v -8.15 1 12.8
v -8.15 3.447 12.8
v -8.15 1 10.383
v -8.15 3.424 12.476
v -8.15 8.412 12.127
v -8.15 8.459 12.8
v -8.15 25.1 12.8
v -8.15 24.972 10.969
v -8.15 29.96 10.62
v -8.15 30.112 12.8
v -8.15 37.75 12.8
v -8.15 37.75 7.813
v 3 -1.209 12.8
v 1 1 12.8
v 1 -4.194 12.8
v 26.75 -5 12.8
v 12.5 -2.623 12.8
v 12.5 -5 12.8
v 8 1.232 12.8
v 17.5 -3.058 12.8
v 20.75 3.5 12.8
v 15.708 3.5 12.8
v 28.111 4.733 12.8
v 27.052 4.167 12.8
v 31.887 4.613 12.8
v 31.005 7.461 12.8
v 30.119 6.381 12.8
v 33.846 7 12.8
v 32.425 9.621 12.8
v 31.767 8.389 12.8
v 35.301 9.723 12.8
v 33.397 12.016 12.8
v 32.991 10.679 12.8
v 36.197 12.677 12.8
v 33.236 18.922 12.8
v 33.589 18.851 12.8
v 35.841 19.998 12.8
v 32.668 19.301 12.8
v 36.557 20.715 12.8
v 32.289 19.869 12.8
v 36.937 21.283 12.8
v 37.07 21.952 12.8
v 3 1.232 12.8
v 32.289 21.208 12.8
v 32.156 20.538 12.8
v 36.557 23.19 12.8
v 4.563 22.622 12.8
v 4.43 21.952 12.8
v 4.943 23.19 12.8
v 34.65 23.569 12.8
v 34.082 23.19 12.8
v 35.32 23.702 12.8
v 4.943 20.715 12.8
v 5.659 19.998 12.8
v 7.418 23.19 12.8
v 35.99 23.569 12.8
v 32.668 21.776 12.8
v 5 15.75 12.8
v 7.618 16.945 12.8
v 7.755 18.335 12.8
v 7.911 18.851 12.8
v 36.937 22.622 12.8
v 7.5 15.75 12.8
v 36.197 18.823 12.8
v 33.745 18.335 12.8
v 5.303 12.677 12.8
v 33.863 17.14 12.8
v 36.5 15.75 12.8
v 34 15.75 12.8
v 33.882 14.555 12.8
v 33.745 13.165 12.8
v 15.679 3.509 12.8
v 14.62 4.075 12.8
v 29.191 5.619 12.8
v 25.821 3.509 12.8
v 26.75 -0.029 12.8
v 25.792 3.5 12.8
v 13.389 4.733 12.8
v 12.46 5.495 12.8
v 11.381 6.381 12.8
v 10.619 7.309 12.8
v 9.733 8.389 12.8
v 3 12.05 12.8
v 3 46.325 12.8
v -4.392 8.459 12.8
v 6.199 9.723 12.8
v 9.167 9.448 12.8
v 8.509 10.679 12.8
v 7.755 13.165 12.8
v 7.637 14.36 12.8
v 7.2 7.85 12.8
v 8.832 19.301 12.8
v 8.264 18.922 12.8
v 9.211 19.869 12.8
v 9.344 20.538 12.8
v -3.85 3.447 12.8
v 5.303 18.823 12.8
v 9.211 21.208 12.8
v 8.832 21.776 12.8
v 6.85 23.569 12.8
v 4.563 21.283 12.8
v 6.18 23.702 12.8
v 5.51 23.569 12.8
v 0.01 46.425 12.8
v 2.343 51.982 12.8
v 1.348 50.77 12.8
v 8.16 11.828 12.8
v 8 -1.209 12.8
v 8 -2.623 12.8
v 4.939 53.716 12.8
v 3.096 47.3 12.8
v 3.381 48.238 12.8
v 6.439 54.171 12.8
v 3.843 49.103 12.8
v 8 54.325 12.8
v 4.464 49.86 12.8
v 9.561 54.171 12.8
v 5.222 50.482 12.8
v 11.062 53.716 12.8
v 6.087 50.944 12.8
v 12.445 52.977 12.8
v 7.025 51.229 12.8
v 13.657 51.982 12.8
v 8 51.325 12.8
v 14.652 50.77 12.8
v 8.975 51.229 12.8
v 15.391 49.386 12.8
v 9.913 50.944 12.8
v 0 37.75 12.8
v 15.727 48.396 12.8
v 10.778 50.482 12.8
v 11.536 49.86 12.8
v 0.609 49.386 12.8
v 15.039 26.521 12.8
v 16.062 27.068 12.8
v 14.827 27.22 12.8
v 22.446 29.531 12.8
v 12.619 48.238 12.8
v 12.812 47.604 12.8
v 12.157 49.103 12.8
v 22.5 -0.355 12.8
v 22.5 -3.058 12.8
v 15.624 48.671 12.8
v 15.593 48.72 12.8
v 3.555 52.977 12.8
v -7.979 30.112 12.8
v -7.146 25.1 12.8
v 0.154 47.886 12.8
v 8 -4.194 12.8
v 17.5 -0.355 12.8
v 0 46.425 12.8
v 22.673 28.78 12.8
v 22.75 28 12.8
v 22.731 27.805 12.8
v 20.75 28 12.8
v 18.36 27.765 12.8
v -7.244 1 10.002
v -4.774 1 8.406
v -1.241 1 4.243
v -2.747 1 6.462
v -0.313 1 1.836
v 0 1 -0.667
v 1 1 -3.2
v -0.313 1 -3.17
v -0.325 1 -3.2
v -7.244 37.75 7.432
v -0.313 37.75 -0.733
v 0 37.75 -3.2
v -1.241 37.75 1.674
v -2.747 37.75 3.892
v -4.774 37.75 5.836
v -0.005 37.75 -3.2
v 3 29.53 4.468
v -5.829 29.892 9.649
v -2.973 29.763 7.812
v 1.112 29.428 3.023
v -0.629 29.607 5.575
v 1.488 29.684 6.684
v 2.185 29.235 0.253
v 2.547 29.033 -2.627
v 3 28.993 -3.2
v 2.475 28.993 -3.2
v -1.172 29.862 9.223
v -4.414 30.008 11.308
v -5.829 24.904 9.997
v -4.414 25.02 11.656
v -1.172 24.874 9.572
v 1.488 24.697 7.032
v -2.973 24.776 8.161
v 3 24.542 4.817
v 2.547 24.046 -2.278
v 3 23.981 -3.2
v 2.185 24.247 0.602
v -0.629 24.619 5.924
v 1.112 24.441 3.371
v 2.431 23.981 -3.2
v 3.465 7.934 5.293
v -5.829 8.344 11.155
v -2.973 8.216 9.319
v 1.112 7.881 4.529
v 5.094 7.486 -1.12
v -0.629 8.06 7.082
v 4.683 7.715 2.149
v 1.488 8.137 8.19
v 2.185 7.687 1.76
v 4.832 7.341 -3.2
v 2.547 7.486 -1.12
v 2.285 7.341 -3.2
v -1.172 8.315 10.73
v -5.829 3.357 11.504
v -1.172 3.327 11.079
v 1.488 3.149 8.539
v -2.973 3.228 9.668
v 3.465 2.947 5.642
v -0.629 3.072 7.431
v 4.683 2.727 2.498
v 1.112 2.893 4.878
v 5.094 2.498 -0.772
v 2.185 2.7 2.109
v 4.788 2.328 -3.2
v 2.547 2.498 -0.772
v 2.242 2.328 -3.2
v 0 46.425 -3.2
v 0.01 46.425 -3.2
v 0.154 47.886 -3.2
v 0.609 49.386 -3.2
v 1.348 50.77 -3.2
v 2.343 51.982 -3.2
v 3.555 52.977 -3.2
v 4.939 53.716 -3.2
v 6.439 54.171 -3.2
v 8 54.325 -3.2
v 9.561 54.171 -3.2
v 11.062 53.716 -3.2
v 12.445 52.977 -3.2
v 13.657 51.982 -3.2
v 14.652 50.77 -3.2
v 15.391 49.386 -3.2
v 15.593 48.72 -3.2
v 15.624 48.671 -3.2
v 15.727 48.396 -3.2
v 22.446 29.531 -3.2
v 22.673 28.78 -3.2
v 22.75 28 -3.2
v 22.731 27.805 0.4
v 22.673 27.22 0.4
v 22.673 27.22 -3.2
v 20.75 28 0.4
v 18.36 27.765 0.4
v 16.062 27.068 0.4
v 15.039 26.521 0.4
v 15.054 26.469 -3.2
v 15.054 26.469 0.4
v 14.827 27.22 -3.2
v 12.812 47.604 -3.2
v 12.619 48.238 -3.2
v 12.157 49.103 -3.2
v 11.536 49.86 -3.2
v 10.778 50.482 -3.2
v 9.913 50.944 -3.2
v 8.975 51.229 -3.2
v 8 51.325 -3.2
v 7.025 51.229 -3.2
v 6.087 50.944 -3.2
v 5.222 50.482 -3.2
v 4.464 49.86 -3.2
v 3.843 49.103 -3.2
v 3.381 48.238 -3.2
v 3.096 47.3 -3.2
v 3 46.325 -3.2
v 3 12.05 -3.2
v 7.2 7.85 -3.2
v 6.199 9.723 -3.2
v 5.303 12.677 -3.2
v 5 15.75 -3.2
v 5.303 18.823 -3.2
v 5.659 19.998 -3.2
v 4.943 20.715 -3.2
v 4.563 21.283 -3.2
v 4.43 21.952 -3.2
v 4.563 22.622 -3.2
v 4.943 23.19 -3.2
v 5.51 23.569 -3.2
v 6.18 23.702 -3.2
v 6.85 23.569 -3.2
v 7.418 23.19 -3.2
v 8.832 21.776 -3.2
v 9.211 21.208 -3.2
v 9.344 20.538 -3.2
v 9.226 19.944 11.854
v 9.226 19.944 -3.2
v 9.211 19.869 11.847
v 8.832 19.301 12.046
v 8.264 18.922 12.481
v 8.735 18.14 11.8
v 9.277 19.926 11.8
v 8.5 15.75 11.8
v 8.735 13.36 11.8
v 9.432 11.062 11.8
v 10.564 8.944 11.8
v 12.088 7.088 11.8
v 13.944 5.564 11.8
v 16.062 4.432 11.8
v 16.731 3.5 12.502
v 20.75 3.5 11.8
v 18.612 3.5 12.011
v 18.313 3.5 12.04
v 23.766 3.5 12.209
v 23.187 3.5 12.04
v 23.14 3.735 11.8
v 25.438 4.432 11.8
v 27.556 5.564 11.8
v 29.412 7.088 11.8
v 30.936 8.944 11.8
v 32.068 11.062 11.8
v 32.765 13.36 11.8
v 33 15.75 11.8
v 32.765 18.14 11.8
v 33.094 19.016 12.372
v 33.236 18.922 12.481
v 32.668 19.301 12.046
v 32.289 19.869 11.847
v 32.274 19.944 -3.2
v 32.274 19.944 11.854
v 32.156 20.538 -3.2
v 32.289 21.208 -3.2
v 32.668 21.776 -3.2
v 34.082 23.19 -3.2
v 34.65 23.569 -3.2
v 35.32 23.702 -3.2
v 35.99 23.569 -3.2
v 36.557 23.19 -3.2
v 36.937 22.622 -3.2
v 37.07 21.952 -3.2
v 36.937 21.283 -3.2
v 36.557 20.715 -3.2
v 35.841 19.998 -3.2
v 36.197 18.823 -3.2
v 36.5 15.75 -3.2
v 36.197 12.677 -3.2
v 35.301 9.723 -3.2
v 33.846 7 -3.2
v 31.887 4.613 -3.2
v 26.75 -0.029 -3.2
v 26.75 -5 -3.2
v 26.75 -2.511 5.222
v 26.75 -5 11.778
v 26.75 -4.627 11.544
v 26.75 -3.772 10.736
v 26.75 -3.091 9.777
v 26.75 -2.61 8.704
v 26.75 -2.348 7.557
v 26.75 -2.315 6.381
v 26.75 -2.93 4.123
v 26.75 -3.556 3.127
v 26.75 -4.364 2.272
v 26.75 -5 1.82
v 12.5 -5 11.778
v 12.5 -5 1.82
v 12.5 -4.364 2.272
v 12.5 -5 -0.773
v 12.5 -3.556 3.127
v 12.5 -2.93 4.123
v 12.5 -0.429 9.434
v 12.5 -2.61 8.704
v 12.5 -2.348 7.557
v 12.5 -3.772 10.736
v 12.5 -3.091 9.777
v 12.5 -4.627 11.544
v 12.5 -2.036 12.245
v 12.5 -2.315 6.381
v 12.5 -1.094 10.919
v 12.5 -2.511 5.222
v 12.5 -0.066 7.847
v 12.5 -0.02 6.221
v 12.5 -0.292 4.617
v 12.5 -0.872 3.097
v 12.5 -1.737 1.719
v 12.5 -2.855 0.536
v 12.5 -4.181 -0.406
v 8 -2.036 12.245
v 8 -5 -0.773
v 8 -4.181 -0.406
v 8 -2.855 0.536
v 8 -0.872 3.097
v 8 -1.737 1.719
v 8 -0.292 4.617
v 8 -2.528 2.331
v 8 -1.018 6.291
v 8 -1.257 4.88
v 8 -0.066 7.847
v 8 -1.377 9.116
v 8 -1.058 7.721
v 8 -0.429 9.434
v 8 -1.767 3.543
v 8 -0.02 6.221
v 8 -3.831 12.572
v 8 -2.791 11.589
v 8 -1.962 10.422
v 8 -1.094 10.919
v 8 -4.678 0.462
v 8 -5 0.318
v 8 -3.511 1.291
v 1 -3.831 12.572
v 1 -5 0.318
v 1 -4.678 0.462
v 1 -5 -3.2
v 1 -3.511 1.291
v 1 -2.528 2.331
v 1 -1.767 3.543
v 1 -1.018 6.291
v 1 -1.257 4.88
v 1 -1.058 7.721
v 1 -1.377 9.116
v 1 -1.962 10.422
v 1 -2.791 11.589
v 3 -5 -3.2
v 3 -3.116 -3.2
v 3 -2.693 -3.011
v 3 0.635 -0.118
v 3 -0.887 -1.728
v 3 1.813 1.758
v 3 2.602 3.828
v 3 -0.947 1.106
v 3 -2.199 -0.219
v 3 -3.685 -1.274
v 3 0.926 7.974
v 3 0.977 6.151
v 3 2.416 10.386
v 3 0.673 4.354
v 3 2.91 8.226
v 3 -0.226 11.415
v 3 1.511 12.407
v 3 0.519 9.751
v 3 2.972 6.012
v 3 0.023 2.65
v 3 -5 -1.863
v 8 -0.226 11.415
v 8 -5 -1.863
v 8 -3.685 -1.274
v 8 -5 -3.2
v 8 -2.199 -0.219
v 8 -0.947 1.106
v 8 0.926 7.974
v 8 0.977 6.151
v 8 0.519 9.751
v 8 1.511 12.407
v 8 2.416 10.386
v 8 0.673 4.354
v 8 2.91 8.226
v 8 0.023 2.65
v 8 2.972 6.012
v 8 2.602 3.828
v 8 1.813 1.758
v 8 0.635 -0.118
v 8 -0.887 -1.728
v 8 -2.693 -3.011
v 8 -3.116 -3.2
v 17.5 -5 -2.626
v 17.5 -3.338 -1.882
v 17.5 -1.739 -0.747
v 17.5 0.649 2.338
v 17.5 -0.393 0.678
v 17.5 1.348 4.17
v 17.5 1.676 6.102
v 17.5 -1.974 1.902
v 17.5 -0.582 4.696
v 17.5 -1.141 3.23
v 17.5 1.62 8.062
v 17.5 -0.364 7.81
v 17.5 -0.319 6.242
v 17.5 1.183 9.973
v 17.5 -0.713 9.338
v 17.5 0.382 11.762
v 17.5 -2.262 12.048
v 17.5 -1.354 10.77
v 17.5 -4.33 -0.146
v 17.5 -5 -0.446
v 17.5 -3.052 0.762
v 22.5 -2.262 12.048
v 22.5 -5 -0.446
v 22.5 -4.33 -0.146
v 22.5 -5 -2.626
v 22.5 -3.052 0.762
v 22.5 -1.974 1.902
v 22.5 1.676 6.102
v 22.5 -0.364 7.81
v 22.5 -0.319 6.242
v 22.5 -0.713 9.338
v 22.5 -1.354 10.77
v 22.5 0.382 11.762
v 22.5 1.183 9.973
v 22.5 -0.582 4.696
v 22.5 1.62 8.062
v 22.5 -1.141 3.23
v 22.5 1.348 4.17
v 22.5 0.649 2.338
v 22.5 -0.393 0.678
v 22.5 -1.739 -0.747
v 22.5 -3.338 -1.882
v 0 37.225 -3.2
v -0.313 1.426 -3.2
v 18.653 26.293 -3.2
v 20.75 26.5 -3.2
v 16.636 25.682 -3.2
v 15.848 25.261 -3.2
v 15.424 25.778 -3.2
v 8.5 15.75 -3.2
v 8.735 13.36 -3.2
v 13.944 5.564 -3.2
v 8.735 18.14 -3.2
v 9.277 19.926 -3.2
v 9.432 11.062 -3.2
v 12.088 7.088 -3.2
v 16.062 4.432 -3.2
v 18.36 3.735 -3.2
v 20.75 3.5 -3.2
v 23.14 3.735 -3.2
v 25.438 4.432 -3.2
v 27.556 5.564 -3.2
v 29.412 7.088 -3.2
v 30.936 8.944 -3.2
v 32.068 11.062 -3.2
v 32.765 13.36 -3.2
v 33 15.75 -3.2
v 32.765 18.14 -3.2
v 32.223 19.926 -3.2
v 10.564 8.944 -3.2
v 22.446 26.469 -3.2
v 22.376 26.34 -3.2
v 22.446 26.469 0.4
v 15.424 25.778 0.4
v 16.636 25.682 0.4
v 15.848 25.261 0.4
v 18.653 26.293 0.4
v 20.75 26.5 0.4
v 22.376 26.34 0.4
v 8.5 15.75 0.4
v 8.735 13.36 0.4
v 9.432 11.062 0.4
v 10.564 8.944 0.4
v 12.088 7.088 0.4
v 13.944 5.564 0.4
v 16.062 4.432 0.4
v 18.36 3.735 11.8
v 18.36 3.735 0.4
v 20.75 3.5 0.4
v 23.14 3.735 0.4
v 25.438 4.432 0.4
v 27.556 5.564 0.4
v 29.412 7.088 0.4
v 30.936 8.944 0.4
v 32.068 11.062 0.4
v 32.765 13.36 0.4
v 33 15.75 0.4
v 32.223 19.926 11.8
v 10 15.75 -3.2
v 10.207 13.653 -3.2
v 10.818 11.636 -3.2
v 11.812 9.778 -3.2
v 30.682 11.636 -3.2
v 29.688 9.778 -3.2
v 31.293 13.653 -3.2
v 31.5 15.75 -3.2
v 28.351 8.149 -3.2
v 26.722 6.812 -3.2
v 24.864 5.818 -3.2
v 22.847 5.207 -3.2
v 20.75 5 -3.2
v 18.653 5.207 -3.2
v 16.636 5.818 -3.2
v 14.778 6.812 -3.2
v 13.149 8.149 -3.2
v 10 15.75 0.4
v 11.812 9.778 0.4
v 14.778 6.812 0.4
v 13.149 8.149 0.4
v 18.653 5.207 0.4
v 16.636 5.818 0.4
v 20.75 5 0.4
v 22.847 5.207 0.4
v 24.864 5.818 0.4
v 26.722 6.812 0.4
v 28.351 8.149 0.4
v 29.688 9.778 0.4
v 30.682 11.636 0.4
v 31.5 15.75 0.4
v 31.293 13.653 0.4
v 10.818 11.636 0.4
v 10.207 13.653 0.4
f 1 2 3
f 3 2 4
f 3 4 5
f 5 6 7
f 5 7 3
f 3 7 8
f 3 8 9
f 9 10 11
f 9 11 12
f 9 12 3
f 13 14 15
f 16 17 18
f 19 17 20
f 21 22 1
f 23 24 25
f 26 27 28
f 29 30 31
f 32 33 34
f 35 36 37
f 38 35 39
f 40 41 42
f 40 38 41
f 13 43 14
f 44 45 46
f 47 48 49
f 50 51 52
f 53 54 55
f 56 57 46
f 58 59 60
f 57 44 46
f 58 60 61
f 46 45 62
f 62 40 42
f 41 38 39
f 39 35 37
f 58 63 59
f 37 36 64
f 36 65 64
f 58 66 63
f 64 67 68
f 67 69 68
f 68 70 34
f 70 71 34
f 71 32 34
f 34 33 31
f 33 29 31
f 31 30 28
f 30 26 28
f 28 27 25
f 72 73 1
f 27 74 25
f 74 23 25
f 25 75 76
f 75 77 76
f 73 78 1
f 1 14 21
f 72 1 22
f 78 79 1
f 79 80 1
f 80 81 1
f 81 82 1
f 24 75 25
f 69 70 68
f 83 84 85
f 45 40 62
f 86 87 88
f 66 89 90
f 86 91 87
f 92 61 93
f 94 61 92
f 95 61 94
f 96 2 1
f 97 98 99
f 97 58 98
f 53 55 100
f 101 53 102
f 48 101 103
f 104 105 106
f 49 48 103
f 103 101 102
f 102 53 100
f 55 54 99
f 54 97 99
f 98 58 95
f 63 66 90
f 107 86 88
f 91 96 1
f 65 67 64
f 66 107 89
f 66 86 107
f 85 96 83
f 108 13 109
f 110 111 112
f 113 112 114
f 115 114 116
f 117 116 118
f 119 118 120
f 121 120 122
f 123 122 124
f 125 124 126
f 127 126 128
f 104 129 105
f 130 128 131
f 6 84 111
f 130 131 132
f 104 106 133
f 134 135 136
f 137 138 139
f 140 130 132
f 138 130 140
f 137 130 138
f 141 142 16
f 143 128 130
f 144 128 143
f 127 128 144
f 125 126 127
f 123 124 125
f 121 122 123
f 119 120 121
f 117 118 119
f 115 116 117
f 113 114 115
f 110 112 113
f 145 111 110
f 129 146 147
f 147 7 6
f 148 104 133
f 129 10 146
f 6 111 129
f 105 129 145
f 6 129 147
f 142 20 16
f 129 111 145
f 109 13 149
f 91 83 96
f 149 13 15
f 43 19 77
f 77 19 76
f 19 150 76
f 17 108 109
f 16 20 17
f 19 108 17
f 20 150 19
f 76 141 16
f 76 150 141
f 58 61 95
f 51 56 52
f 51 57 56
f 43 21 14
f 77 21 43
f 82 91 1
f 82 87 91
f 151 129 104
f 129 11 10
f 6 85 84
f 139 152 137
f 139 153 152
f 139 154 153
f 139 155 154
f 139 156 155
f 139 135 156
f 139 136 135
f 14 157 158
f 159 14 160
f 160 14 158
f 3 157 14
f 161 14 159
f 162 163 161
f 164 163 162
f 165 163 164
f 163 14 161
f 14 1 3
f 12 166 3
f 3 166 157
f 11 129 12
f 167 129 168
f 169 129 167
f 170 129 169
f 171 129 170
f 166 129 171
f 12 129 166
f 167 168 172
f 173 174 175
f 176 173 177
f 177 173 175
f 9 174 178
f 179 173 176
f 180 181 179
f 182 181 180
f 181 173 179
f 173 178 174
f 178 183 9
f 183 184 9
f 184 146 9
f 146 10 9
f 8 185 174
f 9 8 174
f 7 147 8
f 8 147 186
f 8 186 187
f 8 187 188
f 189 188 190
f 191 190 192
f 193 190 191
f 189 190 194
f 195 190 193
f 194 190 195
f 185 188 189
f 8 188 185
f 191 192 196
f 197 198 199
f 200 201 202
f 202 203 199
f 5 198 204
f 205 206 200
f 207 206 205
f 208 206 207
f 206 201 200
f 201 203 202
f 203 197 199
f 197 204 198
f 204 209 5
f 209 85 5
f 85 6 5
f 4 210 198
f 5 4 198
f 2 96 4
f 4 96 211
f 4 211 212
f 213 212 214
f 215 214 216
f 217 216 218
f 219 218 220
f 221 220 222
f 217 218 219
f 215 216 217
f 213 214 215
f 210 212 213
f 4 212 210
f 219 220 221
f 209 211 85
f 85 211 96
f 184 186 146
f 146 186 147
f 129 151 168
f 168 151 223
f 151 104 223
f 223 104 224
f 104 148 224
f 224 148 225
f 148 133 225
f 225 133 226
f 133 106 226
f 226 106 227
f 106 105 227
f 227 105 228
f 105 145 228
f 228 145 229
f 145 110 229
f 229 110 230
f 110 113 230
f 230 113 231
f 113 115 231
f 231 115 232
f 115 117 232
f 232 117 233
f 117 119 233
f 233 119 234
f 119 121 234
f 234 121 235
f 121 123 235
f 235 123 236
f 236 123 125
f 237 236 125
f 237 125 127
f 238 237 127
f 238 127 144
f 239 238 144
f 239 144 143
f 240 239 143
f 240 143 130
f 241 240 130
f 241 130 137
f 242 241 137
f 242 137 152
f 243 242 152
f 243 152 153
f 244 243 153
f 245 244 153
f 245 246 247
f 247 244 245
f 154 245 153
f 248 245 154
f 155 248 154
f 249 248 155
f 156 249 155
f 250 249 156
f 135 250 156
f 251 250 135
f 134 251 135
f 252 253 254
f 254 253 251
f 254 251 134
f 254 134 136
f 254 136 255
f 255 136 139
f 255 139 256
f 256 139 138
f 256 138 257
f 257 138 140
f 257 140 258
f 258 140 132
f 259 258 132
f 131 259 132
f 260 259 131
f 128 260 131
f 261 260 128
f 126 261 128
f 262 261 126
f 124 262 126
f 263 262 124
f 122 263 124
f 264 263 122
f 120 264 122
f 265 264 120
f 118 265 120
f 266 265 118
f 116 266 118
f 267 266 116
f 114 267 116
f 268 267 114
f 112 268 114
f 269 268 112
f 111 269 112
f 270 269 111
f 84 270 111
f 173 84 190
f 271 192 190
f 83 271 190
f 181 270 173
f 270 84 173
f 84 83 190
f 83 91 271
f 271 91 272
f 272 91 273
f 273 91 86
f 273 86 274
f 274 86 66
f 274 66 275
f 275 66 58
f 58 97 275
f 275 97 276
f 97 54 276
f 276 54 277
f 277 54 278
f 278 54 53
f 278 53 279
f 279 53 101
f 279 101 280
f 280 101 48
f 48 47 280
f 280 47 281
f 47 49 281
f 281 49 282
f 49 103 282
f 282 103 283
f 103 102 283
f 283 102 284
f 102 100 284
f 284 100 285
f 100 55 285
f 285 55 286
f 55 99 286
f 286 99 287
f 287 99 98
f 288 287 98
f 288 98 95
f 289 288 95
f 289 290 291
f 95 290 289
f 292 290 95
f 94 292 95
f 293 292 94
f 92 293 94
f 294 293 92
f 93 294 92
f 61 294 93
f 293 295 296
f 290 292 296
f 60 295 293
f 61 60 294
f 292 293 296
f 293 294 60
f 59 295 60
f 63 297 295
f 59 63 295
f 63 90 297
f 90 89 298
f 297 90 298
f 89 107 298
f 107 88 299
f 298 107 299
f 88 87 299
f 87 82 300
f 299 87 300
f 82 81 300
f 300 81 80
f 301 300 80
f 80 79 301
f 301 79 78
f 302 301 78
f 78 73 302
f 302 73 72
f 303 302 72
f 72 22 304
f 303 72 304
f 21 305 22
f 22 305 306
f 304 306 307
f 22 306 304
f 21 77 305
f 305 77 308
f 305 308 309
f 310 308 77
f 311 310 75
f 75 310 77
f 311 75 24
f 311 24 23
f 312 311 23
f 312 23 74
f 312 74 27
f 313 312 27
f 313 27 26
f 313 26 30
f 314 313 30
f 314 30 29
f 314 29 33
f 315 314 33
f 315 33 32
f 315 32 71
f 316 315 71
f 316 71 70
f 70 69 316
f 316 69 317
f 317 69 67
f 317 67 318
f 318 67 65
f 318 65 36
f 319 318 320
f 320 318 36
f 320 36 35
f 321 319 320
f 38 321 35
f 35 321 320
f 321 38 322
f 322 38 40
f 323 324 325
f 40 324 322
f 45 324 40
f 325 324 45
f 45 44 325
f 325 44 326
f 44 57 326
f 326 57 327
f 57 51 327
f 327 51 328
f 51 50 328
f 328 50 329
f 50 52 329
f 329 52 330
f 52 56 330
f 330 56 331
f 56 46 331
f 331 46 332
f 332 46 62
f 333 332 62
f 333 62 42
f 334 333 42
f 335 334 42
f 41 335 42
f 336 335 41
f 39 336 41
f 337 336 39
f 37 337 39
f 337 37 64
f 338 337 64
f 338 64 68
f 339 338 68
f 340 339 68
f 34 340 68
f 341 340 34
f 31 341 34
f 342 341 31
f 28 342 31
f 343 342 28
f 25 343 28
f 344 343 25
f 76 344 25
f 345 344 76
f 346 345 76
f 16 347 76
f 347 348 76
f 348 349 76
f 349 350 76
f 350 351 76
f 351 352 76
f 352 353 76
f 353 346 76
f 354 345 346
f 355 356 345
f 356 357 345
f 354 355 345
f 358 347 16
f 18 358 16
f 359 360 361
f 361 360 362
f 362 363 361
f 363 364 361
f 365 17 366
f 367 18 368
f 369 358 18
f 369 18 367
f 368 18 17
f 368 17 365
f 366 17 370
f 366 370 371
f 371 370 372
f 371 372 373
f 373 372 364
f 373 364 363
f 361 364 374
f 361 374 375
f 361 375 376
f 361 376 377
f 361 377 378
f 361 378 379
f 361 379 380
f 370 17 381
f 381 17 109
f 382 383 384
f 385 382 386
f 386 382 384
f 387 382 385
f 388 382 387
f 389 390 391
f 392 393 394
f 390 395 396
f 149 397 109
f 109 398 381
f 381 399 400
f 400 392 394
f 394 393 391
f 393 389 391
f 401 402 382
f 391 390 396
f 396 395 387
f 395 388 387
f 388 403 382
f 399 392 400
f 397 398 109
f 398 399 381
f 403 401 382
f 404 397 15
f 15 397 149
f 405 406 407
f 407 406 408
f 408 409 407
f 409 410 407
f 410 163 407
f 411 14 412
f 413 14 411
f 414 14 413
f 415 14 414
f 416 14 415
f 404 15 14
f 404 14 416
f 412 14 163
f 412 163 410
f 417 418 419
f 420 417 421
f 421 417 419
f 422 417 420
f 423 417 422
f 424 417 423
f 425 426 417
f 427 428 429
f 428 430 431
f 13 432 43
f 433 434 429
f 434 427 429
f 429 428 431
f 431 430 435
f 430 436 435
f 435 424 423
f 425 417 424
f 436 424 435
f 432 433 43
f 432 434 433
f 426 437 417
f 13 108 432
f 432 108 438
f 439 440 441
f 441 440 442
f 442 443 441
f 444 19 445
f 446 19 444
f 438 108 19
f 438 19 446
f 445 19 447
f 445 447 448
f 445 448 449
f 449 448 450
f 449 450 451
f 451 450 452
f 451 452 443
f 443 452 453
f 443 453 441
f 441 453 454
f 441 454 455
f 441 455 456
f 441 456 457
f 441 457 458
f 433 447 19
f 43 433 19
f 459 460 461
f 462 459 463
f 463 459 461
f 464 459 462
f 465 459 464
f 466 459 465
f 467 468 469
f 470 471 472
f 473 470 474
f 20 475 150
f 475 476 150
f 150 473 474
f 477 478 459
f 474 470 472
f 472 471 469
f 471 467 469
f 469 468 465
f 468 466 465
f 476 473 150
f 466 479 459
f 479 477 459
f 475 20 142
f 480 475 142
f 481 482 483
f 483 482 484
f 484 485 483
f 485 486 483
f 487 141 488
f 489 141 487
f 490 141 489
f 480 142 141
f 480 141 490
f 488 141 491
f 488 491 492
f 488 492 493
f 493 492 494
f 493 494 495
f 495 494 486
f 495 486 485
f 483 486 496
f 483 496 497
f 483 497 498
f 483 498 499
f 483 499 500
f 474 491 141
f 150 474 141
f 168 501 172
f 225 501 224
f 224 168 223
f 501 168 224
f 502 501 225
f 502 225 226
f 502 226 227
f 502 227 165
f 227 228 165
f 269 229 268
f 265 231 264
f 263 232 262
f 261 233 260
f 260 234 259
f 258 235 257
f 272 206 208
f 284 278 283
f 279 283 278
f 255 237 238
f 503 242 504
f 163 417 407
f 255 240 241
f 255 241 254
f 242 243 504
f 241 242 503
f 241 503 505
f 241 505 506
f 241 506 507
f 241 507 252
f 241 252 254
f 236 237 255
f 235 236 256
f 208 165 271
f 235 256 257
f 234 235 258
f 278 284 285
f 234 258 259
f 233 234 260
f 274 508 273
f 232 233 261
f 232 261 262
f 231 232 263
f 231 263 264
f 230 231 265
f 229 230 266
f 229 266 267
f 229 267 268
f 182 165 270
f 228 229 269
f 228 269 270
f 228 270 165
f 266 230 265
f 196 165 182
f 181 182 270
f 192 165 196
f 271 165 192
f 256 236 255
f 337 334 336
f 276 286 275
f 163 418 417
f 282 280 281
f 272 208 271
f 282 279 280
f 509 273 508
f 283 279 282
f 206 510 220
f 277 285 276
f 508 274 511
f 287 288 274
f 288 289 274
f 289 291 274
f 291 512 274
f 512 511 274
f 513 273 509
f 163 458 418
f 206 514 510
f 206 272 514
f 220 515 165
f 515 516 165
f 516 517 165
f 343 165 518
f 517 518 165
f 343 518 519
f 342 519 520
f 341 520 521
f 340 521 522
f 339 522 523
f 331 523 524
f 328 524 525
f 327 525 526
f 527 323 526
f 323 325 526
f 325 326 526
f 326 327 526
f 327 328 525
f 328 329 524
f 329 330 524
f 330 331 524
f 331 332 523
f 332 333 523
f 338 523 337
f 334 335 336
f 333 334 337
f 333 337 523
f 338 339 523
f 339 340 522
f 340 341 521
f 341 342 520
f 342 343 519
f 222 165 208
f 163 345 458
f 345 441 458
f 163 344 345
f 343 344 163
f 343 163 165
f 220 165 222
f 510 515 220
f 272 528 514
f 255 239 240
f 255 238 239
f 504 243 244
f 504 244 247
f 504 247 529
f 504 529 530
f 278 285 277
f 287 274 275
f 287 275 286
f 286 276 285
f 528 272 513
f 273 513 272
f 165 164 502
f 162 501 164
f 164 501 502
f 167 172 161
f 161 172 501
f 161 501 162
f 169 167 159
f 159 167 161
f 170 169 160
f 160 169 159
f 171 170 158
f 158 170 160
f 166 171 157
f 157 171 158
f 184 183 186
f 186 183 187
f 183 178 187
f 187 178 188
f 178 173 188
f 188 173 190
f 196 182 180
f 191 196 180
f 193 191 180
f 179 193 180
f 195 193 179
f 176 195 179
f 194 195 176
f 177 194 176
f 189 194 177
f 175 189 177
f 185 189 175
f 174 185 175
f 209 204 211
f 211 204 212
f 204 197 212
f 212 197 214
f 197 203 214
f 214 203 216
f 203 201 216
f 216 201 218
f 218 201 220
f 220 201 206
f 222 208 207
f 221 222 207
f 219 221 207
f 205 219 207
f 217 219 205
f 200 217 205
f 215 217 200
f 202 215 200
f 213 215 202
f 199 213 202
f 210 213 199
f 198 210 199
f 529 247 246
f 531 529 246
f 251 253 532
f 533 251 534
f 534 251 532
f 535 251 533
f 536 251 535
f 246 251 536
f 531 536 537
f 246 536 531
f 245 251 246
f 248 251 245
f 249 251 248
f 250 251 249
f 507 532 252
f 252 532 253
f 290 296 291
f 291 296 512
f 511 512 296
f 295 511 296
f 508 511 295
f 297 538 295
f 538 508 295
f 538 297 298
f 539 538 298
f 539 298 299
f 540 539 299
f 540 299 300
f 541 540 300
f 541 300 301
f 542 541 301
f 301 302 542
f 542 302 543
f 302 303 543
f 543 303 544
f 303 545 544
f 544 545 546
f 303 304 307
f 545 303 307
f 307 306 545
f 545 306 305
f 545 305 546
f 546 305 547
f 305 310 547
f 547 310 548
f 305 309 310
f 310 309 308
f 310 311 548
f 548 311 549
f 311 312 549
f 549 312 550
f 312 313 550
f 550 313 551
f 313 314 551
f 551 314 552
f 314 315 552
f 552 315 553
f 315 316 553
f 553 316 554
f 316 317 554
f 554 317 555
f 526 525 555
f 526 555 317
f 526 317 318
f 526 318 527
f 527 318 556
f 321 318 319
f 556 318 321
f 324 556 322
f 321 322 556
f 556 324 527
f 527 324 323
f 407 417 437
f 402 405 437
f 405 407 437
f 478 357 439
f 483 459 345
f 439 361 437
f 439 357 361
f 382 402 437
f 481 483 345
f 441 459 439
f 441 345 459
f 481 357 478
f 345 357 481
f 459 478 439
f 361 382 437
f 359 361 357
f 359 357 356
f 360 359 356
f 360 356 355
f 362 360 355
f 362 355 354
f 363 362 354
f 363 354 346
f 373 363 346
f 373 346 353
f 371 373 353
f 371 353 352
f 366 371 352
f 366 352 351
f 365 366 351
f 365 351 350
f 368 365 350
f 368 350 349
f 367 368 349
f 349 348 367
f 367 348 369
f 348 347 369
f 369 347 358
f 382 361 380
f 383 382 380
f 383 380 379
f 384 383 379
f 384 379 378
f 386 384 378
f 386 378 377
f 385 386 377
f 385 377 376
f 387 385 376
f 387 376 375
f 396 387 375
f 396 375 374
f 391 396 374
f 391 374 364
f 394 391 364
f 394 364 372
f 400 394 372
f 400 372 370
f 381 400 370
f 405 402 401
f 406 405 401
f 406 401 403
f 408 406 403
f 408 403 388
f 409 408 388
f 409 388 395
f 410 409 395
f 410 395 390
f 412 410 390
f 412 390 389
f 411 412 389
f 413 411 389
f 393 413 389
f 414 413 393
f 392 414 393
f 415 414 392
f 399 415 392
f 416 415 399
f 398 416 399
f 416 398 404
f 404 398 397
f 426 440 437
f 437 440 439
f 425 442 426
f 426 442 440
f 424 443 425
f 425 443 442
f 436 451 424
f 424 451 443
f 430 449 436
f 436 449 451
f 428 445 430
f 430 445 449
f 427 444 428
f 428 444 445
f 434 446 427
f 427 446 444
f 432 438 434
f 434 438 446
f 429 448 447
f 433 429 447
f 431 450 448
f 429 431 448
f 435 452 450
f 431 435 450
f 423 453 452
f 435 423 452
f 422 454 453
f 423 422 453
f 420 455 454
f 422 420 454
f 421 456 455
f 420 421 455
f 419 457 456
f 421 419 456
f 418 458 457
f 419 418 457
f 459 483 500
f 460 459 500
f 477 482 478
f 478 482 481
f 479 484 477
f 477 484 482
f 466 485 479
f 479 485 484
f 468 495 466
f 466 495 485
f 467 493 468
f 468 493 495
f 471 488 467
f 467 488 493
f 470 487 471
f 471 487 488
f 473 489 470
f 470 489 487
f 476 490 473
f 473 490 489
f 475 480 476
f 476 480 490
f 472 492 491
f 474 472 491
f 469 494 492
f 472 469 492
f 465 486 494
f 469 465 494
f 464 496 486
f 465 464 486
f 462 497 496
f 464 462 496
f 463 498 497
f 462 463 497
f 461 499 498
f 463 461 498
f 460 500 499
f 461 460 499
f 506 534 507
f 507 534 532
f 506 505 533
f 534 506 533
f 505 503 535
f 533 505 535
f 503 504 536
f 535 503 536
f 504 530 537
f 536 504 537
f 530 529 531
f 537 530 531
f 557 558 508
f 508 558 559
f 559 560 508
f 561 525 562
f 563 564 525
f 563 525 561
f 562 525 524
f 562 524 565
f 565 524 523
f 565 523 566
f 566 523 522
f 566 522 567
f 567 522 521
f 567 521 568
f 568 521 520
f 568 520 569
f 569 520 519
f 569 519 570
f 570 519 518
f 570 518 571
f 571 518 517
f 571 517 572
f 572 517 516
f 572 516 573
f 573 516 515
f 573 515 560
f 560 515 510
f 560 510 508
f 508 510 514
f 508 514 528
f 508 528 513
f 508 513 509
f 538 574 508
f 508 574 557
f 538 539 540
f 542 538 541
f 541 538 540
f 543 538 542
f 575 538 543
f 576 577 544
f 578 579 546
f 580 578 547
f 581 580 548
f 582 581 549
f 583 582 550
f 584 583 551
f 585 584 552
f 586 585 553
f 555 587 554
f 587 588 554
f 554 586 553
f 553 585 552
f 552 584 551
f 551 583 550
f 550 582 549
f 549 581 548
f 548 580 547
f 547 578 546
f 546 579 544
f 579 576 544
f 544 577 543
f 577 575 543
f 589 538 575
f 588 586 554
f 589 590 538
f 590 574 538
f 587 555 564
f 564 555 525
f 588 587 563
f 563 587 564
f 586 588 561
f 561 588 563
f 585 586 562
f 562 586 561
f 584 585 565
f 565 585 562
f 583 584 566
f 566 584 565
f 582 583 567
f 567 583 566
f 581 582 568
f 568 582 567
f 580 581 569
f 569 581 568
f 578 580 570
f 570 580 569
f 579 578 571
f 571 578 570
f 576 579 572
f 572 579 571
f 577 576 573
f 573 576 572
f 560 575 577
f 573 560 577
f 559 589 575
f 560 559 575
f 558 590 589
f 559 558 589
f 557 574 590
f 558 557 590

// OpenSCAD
// file: ../standard_optomechanics/cylinder_clamp.scad
use <../utilities.scad>;
d=0.05;

//for 1 inch/25mm post clamp, an inner radius of 12.8 is good.
	
module cylinder_clamp(
	inner_r=12.8, //radius of the cylinder being clamped (ish!)
	clamp_h=11, //thicknedess of the clamp along the cylinder axis
	clamp_t=4, //thickness of the clamp radially
	flat_t=8, //how thick the bottom of the clamp is (often need to allow for the mounting bolt head here)
	flat_width=15, //width of the flat base
	mounting_bolt=4, //nominal size of mounting bolt (default is 4 for M4, 0 to disable)
	nut_trap=false,
	bevel_top=0.5, //size of 45 degree bevel on top surface
	bevel_bottom=0.8 //size of 45 degree bevel on bottom of hole
	){
	assign(
		post_r = inner_r, //poor initial choice of name!
		bolt_flat_w=10, //width of the region where the bolt is
		gap_w=3 //size of the gap that is squeezed by the bolt
	)
	difference(){
		hull(){
			cylinder(h=clamp_h,r=post_r+clamp_t,center=true,$fn=48);
			translate([0,-post_r-flat_t/2,0]) cube([flat_width,flat_t,clamp_h],center=true);
			translate([0,post_r+bolt_flat_w/2,0]) cube([12,bolt_flat_w,clamp_h],center=true);
		}
	
		cylinder(h=9999,r=post_r,center=true,$fn=48); //cylinder being clamped
		//bevels, top and bottom
		translate([0,0,-clamp_h/2]) cylinder(r1=post_r+3*bevel_bottom,r2=post_r-bevel_bottom,h=4*bevel_bottom,center=true);
		translate([0,0,clamp_h/2]) cylinder(r2=post_r+3*bevel_top,r1=post_r-bevel_top,h=4*bevel_top,center=true);
		//gap (squeezed by bolt)
		translate([0,999,0]) cube([gap_w,999*2,999],center=true); //gap
	
		//clamping bolt
		translate([gap_w/2+2,post_r+bolt_flat_w/2,0]) rotate([0,0,-90]) nut_y(4,h=999,shaft=true);
		translate([-gap_w/2-2,post_r+bolt_flat_w/2,0]) rotate([0,0,90]) cylinder_with_45deg_top(r=4,h=999,$fn=16); //counterbore for nut head
	
		if(mounting_bolt > 0){
			//mounting bolt
			translate([0,-post_r-4.5,0]) rotate([-90,0,0]){
				intersection(){
					rotate([90,0,0])
						if(nut_trap){
							nut_y(mounting_bolt,fudge=1.15,shaft=true,h=999);
						}else{
							screw_y(mounting_bolt,fudge=1.07,shaft=true,h=999);
						}
					cube([inner_r*2,inner_r*2,clamp_h*2],center=true);
				}
			}
		}
		//in the case of thick clamps with thin flats, this keeps the bottom flat
		translate([0,-inner_r-flat_t-999,0]) cube([9999,999*2,9999],center=true);
	}
}

module cylinder_clamp_v(
	inner_r=12.8, //radius of the cylinder being clamped (ish!)
	clamp_h=10, //width of the clamp along the cylinder (y) axis
	clamp_t=4, //thickness of the clamp radially
	flat_t=8, //how thick the bottom of the clamp is (often need to allow for the mounting bolt head here)
	flat_width=15, //width of the flat base
	mounting_bolt=4, //nominal size of mounting bolt (default is 4 for M4, 0 to disable)
	bevel=0.5 //put a 45 degree bevel on the edges of the hole
	){
	assign(
		post_r = inner_r, //poor initial choice of name!
		bolt_flat_w=11, //width of the region where the bolt is
		gap_w=2*inner_r*sin(45/2),//sin(acos(1-(9/2-4/2*1.22)/inner_r))*inner_r //size of the gap that is squeezed by the bolt
		bolt_z = inner_r+4/2*1.22+d //position of bolt (so bolt just clears the cylinder we're clamping
	)assign( //the second assign statement allows us to use gap_w
		bolt_span=gap_w+4+d//max(2*inner_r*sin(acos(1-(9/2-4/2*1.22)/inner_r)), gap_w+4)
	)
	difference(){
		hull(){
			rotate([90,0,0]) cylinder(h=clamp_h,r=inner_r+clamp_t,center=true,$fn=48);
			translate([0,0,-inner_r-flat_t/2]) cube([flat_width,clamp_h,flat_t],center=true);
			translate([0,0,bolt_z]) cube([gap_w+9,clamp_h,bolt_flat_w],center=true);
		}
	
		cylinder_with_45deg_top(h=9999,r=post_r,center=true,$fn=48); //cylinder being clamped
		reflect([0,1,0]) translate([0,clamp_h/2,0]) rotate([90,0,0]) cylinder(r1=post_r+3*bevel,r2=post_r-bevel,h=4*bevel,center=true); //bevel
		translate([0,0,999]) cube([gap_w,999,999*2],center=true); //gap
	
		//clamping bolt
		translate([bolt_span/2,0,bolt_z]) rotate([0,0,-90]) nut_y(4,h=999,shaft=true);
		translate([-bolt_span/2,0,bolt_z]) rotate([0,0,90]) cylinder_with_45deg_top(r=4,h=999,$fn=16); //counterbore for nut head
	
		if(mounting_bolt > 0){
			//mounting bolt
			translate([0,0,-post_r-4.5]){
				cylinder(r=mounting_bolt*1.1,h=post_r,$fn=16);
				cylinder(r=mounting_bolt/2*1.22,h=flat_t*2,center=true,$fn=16);
			}
		}
		translate([0,0,-inner_r-flat_t-999]) cube([9999,9999,999*2],center=true);
	}
}

translate([0,30,0]) cylinder_clamp_v(30.5/2, 10, flat_width=24, mounting_bolt=4, flat_t=8);

cylinder_clamp(30.5/2, flat_width=24, mounting_bolt=4, flat_t=8,nut_trap=true);
// file: cylinder_clip.scad
use <../utilities.scad>;

module cylinder_clip(r=1,t=3,opening_angle=120,wing_length=2,wing_angle=45,flat_w=10,flat_t=3,h=10,$fn=$fn){
	union(){
		difference(){
			hull(){
				cylinder(r=r+t,$fn=$fn,h=h);
				translate([-flat_w/2,-r-flat_t,0]) cube([flat_w,0.1,h]);
			}
			cylinder(r=r,$fn=$fn,h=99999,center=true);
			cylinder(r1=r+2,r2=r,$fn=$fn,h=2,center=true);
			scale([tan(opening_angle/2),1,1]) rotate([0,0,45]) translate([0,0,-1]) cube([1,1,1]*9999);
		}
		reflect([1,0,0]) translate([sin(opening_angle/2),cos(opening_angle/2),0]*(r+t/2)) hull() repeat([sin(wing_angle),cos(wing_angle),0]*wing_length,2)
			cylinder(r=t/2,h=h,$fn=16);
			
	}
}

//cylinder_clip(r=3,t=2,flat_w=6);
union(){
	cylinder_clip(r=21,t=4.5,flat_t=10,opening_angle=100,$fn=64);
	translate([-5,-22-5-20,0]) cube([10,20,10]);
}
// main file
use <../utilities.scad>;
use <./cylinder_clip.scad>;
use <../standard_optomechanics/cylinder_clamp.scad>;

socket_radius = 24.3/2+0.1;
clip_t = 3.5;
vbrake_mount_r2 = 11.6/2+0.2;
vbrake_mount_r1 = 14/2+0.3;
corner_clearance = 1;
vbrake_mount_l1 = 8;
vbrake_mount_l2 = 20;
vbrake_mount_lip_l = 4.5;
clip_h = 16;
fork = [32.6,25.6];
base_z = -fork[1]/2; //in original this was -fork[1]/2+1
mount_h = clip_h;
reinforcement = [13,13];
vbrake_pos = [0,-vbrake_mount_r1-1,vbrake_mount_r2-fork[1]/2];
$fn=32;
d=0.05;

module annulus(inner_r,thickness,h){
	difference(){
		cylinder(r=inner_r+thickness,h=h);
		cylinder(r=inner_r,h=99999,center=true);
	}
}
module cable_tie(inner_r){
	annulus(inner_r+2,2,5);
}

mirror([0,0,1])
//mirror([1,0,0])
difference(){
	union(){
		translate([socket_radius+clip_t+5,socket_radius+clip_t,base_z]) rotate(0) cylinder_clip(r=socket_radius, t=clip_t,flat_w=1,flat_t=clip_t+5,h=clip_h,opening_angle=140);
		translate([corner_clearance,-5,base_z]) cube([socket_radius+clip_t+10,5+clip_t,mount_h]); //attachment to V brake mount
		translate([-fork[0]/4,corner_clearance,base_z]) cube([fork[0]/4+3,socket_radius*3,mount_h]); //attachment to fork
		translate([corner_clearance,corner_clearance,base_z]) hull(){
			cube([reinforcement[0],d,mount_h]);
			cube([d,reinforcement[1],mount_h]);
		}
		translate([clip_t+5,clip_t,base_z+clip_h-3.6]) intersection(){
			cube([socket_radius*2,socket_radius,3.6]); //lip to engage pedal mount
			translate([socket_radius,socket_radius,0]) cylinder(r=socket_radius+1,h=999,center=true);
		}
		//retaining clip
		assign(sr=socket_radius, rc=5, t=3)translate([0,0,base_z]){
			translate([0,sr+clip_t,0]) cube([t,sr*2.5+d,clip_h]);
			translate([rc+t,sr*3.5+clip_t-d,0]) difference(){
				cylinder(r=rc+3,h=clip_h);
				cylinder(r=rc,h=999,center=true);
				translate([0,-999,0]) cube([1,1,1]*2*999,center=true);
			}
			hull(){
				translate([2*rc+1.5*t,sr*3.5+clip_t-d,0]) cylinder(r=t/2,h=clip_h);
				translate([rc+t,sr*3.5+clip_t-d,0]) rotate(15) translate([rc+t/2,0,0]) cylinder(r=t/2,h=clip_h);
				translate([socket_radius+clip_t+3,socket_radius*2+clip_t,0]) cylinder(r=4,h=clip_h);
			}
		}
	}

	// Pedal mount
	translate([socket_radius+clip_t+5,socket_radius+clip_t,0]) cylinder(r=socket_radius-1.5,h=999,center=true);
	translate([socket_radius+clip_t+5,socket_radius+clip_t,base_z+clip_h-3.6]) mirror([0,0,1]) cylinder(r=socket_radius,h=999);
//	translate([socket_radius+clip_t+5,socket_radius+clip_t,base_z+clip_h-3.6]) cylinder(r1=socket_radius,r2=socket_radius-1.5,h=0.75);

translate(vbrake_pos) rotate([4,0,0]) translate(-vbrake_pos){
		//////////// Fork
		translate([-fork[0]/2,0,0]) rotate([-90,0,0]) scale([fork[0]/fork[1],1,1]){
			cylinder(r=fork[1]/2,h=999,center=true);
			translate([0,0,3]) cable_tie(fork[1]/2);
			translate([0,0,fork[0]-8]) cable_tie(fork[1]/2);
		}
	
		//////////// V brake mount
		translate(vbrake_pos) rotate([0,90,0]){
			cylinder(r=vbrake_mount_r1,h=vbrake_mount_l1+d);
			translate([0,0,vbrake_mount_l1]) cylinder(r=vbrake_mount_r1+1,h=vbrake_mount_lip_l);
			translate([0,0,vbrake_mount_l1+vbrake_mount_lip_l]) cylinder(r=vbrake_mount_r2,h=vbrake_mount_l2);
			// Cable tie points
			translate([0,0,vbrake_mount_l1-5]) cable_tie(vbrake_mount_r1);
			translate([0,0,vbrake_mount_l1+vbrake_mount_lip_l+5]) cable_tie(vbrake_mount_r2);
		}
	}
}
